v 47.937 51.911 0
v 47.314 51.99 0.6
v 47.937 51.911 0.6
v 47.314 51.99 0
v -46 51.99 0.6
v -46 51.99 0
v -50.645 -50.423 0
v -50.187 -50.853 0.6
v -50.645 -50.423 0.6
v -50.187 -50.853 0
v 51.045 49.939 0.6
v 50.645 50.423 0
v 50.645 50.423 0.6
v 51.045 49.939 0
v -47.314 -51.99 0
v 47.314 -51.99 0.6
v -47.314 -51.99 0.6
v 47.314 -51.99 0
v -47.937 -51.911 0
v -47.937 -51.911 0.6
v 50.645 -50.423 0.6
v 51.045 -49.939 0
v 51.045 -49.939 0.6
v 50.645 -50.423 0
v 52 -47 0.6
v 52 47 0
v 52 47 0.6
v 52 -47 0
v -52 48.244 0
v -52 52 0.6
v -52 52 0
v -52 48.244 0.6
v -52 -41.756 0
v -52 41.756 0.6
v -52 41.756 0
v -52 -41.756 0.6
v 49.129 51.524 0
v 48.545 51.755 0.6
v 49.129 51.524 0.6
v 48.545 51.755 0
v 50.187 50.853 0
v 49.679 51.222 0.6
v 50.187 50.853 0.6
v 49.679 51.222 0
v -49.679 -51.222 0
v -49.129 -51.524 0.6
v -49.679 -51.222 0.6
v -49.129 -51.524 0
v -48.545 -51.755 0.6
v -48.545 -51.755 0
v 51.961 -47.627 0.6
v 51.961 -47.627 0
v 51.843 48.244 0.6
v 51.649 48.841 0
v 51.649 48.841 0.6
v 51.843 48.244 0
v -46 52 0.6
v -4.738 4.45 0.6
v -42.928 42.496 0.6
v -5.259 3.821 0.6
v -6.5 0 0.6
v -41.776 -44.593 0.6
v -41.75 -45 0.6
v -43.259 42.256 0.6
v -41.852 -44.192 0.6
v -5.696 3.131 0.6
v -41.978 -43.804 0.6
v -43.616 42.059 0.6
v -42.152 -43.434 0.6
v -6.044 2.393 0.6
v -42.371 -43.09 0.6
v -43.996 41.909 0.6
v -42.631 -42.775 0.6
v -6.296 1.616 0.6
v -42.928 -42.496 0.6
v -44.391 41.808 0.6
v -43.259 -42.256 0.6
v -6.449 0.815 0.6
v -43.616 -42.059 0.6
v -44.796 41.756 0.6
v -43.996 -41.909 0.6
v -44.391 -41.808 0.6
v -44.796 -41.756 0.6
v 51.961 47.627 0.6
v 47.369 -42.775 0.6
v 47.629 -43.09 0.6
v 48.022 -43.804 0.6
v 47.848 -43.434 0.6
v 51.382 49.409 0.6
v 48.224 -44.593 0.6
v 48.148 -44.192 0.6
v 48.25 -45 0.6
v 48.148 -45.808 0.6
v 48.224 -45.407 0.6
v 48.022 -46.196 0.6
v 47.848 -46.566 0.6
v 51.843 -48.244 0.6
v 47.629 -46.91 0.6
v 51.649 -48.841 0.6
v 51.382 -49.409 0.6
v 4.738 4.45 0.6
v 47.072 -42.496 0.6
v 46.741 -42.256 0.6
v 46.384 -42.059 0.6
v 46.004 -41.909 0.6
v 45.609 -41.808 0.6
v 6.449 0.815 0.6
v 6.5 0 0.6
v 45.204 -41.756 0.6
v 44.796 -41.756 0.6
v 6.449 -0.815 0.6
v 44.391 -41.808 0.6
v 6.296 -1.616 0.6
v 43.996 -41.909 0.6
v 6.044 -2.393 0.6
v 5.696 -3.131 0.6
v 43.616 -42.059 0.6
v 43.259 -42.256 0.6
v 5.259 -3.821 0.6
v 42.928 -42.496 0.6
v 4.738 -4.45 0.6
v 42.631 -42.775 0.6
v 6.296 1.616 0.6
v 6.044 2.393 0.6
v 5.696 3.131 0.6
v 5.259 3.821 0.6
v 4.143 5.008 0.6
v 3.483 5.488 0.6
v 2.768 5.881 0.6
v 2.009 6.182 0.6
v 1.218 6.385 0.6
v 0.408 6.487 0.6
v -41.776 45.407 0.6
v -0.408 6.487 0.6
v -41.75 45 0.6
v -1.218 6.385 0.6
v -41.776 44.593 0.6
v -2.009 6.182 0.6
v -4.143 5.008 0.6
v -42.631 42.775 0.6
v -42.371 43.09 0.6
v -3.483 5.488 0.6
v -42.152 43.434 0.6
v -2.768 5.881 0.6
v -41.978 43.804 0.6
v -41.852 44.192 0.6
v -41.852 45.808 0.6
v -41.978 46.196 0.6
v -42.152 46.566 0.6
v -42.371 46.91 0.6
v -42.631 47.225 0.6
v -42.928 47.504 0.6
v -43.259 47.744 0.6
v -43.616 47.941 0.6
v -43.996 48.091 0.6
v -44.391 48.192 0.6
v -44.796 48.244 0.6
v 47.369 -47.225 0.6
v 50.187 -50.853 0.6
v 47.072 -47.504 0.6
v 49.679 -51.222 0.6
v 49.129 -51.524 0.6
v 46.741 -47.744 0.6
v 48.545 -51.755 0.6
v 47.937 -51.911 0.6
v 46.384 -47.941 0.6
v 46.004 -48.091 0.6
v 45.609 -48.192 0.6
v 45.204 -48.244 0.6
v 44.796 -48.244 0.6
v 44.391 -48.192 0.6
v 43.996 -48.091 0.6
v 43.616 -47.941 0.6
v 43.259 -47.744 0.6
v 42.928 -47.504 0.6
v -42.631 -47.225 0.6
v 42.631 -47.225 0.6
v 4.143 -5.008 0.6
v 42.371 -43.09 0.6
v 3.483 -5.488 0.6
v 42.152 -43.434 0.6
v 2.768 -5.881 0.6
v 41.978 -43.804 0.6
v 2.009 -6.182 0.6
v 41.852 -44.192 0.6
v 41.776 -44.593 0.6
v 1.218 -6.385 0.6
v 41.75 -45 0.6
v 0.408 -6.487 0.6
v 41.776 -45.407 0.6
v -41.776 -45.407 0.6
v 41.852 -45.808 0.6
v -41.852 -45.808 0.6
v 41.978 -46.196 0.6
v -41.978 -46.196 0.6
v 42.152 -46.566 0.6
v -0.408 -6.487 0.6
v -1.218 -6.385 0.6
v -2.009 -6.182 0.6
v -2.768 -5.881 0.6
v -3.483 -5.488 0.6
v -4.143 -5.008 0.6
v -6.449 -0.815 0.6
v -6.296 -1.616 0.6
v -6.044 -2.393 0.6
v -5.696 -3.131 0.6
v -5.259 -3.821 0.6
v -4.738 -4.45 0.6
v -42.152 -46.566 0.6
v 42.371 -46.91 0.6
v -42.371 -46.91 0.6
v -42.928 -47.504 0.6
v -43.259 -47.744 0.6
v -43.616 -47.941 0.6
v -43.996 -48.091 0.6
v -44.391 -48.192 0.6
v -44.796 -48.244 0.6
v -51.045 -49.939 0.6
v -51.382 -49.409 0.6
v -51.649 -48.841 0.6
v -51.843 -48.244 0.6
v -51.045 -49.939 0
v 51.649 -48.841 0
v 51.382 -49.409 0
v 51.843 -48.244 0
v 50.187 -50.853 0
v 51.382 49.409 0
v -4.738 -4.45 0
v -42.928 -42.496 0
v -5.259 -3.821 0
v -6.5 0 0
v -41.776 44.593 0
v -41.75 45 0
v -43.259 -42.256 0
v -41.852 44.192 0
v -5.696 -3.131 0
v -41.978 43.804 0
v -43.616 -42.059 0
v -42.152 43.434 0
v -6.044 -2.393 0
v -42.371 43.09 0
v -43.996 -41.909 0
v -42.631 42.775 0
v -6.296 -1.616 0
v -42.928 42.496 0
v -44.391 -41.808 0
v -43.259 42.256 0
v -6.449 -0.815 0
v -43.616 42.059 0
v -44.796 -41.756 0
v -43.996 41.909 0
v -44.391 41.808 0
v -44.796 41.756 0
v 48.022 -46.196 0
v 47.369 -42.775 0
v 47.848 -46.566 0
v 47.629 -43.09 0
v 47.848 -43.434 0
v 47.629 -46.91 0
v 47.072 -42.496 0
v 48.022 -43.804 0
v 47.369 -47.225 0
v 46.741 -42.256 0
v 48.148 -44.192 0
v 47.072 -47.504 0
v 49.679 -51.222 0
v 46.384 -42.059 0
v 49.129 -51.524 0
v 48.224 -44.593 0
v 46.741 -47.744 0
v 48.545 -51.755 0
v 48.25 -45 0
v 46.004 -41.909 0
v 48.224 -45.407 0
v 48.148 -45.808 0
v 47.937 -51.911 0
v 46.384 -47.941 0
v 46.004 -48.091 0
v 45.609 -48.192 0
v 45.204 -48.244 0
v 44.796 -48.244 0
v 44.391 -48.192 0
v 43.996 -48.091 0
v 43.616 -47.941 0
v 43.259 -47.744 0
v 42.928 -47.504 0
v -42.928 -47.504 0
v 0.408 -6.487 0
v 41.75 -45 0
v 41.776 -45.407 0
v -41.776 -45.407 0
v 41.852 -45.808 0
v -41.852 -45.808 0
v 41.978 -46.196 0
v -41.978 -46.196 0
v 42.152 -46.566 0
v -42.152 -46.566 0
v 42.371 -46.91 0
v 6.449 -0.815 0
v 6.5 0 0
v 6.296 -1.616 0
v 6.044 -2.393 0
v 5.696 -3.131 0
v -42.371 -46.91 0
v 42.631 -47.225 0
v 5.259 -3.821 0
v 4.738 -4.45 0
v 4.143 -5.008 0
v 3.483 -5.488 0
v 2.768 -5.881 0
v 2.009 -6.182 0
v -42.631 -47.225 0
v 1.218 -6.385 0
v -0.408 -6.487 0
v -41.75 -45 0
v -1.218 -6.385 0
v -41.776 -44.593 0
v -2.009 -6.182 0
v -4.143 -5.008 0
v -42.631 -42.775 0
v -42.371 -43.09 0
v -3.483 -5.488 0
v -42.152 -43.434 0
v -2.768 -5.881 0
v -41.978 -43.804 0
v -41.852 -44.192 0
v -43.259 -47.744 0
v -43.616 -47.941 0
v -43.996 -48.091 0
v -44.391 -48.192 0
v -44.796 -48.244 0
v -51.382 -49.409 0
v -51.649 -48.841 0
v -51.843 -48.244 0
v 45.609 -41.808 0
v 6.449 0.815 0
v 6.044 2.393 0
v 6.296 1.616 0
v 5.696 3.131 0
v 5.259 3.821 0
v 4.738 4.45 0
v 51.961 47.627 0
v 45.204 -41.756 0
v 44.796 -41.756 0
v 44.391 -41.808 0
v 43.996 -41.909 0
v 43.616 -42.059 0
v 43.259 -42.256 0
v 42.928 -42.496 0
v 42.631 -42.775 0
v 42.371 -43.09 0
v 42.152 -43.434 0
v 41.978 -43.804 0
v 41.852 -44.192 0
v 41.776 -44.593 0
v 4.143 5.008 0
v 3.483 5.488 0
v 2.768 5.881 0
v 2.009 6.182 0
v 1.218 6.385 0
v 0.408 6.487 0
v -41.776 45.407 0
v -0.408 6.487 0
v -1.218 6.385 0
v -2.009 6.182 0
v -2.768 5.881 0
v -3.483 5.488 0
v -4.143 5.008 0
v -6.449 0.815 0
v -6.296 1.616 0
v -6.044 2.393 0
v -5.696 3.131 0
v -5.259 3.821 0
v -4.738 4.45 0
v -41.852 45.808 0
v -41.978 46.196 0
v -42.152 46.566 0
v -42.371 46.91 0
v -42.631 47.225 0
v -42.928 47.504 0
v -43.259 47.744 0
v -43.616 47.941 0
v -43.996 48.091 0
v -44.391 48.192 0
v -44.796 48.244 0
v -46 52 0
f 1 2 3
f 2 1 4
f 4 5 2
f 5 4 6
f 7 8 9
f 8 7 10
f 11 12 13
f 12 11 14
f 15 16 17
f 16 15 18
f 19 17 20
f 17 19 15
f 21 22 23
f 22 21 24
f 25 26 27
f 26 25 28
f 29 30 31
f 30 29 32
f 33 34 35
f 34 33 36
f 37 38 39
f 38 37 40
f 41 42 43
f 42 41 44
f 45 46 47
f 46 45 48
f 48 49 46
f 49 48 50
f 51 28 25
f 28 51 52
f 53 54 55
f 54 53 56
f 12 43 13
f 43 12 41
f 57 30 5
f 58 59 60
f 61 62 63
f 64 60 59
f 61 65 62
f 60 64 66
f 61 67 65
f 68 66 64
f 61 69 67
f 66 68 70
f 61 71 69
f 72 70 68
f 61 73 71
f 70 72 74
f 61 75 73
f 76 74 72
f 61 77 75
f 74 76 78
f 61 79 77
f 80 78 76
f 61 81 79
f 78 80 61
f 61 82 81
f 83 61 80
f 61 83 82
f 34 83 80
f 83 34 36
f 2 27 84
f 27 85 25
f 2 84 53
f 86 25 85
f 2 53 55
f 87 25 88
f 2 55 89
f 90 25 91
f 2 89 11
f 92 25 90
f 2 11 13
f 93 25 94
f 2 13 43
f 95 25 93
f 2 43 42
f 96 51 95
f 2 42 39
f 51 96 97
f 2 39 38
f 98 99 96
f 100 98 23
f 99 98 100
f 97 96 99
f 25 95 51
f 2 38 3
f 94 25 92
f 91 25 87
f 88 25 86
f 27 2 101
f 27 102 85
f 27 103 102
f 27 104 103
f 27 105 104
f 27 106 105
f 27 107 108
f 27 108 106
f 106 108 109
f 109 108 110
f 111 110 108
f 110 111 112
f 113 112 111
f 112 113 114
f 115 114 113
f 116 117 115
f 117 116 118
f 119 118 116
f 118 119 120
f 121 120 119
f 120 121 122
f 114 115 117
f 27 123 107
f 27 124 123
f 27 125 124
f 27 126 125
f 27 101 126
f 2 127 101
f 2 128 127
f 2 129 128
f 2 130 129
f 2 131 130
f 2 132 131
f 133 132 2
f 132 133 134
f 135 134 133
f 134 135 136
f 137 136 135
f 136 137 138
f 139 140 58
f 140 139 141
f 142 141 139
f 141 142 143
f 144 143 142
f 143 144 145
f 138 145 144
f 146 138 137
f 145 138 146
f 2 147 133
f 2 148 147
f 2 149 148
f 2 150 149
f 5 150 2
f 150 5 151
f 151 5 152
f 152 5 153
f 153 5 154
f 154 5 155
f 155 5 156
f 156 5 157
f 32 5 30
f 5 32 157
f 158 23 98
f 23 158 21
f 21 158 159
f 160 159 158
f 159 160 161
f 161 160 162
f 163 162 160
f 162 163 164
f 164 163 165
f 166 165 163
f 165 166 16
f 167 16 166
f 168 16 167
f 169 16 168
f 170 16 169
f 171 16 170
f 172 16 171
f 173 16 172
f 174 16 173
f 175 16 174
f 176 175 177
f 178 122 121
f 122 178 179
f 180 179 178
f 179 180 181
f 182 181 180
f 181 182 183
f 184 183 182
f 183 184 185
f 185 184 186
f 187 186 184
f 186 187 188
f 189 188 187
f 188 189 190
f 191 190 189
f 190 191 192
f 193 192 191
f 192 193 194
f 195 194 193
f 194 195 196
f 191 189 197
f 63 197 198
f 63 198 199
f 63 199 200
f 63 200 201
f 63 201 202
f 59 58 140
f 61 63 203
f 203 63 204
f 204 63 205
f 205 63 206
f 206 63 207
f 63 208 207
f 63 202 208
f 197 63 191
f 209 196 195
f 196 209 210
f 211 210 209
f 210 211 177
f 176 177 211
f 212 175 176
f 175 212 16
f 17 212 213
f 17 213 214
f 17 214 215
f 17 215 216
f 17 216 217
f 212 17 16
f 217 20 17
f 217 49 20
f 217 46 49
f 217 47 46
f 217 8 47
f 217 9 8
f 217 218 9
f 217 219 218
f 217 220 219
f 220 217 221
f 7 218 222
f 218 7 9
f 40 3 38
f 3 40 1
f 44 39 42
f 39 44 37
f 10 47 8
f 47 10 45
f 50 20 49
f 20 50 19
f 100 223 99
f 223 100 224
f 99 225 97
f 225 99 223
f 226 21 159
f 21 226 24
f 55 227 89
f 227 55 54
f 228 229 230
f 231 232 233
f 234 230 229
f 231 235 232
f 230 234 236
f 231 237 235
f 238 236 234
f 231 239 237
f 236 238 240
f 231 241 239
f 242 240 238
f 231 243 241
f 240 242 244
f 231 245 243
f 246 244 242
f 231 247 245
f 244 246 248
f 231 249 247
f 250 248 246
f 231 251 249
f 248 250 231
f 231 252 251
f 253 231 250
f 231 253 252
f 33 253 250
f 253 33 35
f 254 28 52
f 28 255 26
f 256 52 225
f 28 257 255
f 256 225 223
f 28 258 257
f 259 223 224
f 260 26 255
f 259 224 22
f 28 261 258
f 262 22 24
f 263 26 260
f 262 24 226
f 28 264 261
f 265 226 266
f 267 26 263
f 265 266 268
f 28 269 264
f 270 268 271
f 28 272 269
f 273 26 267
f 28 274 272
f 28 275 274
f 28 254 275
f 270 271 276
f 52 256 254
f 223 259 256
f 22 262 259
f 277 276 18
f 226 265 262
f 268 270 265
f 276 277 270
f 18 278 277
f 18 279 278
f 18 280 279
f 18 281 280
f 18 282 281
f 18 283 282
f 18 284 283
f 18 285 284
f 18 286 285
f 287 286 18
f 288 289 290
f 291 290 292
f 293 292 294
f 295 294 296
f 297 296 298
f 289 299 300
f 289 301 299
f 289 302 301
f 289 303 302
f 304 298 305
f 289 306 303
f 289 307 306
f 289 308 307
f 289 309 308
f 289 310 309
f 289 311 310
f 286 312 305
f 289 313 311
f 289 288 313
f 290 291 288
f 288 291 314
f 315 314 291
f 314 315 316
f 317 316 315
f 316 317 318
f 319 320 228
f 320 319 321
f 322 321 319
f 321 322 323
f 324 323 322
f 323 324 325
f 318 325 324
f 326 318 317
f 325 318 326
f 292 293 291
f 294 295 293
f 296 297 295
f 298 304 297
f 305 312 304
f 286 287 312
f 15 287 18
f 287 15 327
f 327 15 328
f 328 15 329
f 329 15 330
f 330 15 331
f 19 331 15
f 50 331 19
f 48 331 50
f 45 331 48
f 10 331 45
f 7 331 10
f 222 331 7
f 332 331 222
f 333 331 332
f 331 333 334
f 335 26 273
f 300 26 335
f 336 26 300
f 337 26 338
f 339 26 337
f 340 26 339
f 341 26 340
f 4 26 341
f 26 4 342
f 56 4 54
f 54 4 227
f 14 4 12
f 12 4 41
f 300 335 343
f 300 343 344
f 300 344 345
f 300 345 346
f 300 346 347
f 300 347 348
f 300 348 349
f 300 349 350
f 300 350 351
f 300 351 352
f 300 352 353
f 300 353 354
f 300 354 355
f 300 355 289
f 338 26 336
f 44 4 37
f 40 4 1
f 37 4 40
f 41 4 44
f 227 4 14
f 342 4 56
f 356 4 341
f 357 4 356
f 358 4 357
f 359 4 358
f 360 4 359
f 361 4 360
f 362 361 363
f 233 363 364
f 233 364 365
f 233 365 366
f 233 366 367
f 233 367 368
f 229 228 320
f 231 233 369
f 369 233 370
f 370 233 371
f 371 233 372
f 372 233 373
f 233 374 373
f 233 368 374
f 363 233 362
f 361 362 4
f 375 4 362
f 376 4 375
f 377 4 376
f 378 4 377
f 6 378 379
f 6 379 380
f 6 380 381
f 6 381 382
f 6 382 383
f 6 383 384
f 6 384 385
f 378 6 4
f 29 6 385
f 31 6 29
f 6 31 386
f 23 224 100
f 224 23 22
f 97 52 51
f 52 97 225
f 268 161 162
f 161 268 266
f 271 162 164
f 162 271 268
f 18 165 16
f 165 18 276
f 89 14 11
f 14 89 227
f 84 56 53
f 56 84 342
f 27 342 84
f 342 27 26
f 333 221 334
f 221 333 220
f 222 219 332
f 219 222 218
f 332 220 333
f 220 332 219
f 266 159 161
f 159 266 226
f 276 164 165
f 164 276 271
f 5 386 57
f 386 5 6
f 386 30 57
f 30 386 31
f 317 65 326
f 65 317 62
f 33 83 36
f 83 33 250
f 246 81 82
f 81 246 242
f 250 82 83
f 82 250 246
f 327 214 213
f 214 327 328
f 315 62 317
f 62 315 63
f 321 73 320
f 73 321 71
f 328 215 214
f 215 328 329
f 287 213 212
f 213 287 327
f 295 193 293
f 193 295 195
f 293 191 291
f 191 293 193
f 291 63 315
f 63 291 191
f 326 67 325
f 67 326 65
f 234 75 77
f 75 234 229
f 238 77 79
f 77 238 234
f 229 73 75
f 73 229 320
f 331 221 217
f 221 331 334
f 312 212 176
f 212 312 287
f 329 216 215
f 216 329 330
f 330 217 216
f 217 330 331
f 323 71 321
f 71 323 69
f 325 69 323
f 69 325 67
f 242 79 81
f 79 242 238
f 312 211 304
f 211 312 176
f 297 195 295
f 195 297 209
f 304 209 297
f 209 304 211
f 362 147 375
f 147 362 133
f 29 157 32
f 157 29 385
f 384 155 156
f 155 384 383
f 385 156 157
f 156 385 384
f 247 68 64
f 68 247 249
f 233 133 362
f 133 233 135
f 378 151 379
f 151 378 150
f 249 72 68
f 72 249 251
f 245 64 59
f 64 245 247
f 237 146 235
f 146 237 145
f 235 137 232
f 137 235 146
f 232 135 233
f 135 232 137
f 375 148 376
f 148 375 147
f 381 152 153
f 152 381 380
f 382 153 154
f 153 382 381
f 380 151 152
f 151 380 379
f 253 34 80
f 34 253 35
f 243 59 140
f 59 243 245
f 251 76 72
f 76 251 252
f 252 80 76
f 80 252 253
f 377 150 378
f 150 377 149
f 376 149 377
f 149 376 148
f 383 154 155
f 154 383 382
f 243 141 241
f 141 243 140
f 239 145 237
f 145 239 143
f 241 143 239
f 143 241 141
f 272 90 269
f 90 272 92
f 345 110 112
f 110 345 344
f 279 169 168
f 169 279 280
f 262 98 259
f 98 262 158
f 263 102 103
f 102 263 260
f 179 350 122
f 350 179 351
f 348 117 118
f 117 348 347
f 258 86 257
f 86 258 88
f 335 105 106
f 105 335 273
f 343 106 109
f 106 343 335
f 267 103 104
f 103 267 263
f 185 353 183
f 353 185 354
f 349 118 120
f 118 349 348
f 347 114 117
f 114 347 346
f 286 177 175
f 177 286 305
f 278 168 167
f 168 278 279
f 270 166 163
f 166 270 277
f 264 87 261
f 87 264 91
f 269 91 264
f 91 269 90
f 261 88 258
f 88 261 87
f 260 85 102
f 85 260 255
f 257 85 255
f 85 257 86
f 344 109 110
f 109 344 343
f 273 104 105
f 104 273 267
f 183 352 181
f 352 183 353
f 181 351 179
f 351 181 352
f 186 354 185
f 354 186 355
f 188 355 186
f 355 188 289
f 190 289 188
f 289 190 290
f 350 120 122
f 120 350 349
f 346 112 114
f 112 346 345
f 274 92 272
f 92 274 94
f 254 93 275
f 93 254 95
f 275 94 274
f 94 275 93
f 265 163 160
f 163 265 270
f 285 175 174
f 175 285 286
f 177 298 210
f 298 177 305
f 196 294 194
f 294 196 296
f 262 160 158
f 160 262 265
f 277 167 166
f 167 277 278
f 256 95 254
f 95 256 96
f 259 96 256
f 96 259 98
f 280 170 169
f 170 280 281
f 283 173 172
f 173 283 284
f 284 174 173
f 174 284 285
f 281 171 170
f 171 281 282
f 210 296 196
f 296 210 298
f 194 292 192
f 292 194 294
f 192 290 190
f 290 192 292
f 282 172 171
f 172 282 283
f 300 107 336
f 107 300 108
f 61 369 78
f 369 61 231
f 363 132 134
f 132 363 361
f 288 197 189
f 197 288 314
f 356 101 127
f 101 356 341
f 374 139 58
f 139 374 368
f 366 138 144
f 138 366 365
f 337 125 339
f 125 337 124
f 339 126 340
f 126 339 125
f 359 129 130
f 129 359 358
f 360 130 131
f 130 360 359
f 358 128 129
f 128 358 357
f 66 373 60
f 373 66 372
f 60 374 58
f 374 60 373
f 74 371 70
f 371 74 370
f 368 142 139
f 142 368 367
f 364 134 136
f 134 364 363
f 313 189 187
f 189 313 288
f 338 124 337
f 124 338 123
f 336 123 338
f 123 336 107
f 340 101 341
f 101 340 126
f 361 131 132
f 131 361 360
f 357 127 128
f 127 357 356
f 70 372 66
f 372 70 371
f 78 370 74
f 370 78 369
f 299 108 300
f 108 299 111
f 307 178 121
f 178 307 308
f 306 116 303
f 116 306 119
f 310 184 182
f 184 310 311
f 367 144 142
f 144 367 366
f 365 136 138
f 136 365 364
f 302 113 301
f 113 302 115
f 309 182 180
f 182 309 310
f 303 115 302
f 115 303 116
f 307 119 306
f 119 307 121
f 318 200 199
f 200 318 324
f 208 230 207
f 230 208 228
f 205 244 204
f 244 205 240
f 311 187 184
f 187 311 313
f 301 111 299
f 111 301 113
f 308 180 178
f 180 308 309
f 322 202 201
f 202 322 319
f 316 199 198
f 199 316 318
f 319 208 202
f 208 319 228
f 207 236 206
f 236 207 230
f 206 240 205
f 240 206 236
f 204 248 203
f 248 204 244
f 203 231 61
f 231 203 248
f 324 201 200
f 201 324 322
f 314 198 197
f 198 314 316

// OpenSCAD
$fn = 50;


difference() {
	union() {
		translate(v = [0, 0, 0]) {
			rotate(a = [0, 0, 0]) {
				hull() {
					translate(v = [-47.0000000000, 47.0000000000, 0]) {
						rotate(a = [0, 0, 0]) {
							translate(v = [0, 0, 0]) {
								rotate(a = [0, 0, 0]) {
									cylinder(h = 0.6000000000, r = 5);
								}
							}
						}
					}
					translate(v = [47.0000000000, 47.0000000000, 0]) {
						rotate(a = [0, 0, 0]) {
							translate(v = [0, 0, 0]) {
								rotate(a = [0, 0, 0]) {
									cylinder(h = 0.6000000000, r = 5);
								}
							}
						}
					}
					translate(v = [-47.0000000000, -47.0000000000, 0]) {
						rotate(a = [0, 0, 0]) {
							translate(v = [0, 0, 0]) {
								rotate(a = [0, 0, 0]) {
									cylinder(h = 0.6000000000, r = 5);
								}
							}
						}
					}
					translate(v = [47.0000000000, -47.0000000000, 0]) {
						rotate(a = [0, 0, 0]) {
							translate(v = [0, 0, 0]) {
								rotate(a = [0, 0, 0]) {
									cylinder(h = 0.6000000000, r = 5);
								}
							}
						}
					}
				}
			}
		}
		translate(v = [-52.0000000000, 46.0000000000, 0]) {
			rotate(a = [0, 0, 0]) {
				cube(size = [6, 6, 0.6000000000]);
			}
		}
	}
	union() {
		translate(v = [-52.5000000000, -45.0000000000, -125]) {
			rotate(a = [0, 0, 0]) {
				hull() {
					translate(v = [7.5000000000, 0, 0]) {
						rotate(a = [0, 0, 0]) {
							translate(v = [0, 0, 0]) {
								rotate(a = [0, 0, 0]) {
									cylinder(h = 250, r = 3.2500000000);
								}
							}
						}
					}
					translate(v = [-7.5000000000, 0, 0]) {
						rotate(a = [0, 0, 0]) {
							translate(v = [0, 0, 0]) {
								rotate(a = [0, 0, 0]) {
									cylinder(h = 250, r = 3.2500000000);
								}
							}
						}
					}
				}
			}
		}
		translate(v = [-52.5000000000, 45.0000000000, -125]) {
			rotate(a = [0, 0, 0]) {
				hull() {
					translate(v = [7.5000000000, 0, 0]) {
						rotate(a = [0, 0, 0]) {
							translate(v = [0, 0, 0]) {
								rotate(a = [0, 0, 0]) {
									cylinder(h = 250, r = 3.2500000000);
								}
							}
						}
					}
					translate(v = [-7.5000000000, 0, 0]) {
						rotate(a = [0, 0, 0]) {
							translate(v = [0, 0, 0]) {
								rotate(a = [0, 0, 0]) {
									cylinder(h = 250, r = 3.2500000000);
								}
							}
						}
					}
				}
			}
		}
		translate(v = [45.0000000000, -45.0000000000, -125.0000000000]) {
			rotate(a = [0, 0, 0]) {
				cylinder(h = 250, r = 3.2500000000);
			}
		}
		translate(v = [0, 0, 0.0000000000]) {
			rotate(a = [0, 0, 0]) {
				cylinder(h = 0.6000000000, r = 6.5000000000);
			}
		}
	}
}
